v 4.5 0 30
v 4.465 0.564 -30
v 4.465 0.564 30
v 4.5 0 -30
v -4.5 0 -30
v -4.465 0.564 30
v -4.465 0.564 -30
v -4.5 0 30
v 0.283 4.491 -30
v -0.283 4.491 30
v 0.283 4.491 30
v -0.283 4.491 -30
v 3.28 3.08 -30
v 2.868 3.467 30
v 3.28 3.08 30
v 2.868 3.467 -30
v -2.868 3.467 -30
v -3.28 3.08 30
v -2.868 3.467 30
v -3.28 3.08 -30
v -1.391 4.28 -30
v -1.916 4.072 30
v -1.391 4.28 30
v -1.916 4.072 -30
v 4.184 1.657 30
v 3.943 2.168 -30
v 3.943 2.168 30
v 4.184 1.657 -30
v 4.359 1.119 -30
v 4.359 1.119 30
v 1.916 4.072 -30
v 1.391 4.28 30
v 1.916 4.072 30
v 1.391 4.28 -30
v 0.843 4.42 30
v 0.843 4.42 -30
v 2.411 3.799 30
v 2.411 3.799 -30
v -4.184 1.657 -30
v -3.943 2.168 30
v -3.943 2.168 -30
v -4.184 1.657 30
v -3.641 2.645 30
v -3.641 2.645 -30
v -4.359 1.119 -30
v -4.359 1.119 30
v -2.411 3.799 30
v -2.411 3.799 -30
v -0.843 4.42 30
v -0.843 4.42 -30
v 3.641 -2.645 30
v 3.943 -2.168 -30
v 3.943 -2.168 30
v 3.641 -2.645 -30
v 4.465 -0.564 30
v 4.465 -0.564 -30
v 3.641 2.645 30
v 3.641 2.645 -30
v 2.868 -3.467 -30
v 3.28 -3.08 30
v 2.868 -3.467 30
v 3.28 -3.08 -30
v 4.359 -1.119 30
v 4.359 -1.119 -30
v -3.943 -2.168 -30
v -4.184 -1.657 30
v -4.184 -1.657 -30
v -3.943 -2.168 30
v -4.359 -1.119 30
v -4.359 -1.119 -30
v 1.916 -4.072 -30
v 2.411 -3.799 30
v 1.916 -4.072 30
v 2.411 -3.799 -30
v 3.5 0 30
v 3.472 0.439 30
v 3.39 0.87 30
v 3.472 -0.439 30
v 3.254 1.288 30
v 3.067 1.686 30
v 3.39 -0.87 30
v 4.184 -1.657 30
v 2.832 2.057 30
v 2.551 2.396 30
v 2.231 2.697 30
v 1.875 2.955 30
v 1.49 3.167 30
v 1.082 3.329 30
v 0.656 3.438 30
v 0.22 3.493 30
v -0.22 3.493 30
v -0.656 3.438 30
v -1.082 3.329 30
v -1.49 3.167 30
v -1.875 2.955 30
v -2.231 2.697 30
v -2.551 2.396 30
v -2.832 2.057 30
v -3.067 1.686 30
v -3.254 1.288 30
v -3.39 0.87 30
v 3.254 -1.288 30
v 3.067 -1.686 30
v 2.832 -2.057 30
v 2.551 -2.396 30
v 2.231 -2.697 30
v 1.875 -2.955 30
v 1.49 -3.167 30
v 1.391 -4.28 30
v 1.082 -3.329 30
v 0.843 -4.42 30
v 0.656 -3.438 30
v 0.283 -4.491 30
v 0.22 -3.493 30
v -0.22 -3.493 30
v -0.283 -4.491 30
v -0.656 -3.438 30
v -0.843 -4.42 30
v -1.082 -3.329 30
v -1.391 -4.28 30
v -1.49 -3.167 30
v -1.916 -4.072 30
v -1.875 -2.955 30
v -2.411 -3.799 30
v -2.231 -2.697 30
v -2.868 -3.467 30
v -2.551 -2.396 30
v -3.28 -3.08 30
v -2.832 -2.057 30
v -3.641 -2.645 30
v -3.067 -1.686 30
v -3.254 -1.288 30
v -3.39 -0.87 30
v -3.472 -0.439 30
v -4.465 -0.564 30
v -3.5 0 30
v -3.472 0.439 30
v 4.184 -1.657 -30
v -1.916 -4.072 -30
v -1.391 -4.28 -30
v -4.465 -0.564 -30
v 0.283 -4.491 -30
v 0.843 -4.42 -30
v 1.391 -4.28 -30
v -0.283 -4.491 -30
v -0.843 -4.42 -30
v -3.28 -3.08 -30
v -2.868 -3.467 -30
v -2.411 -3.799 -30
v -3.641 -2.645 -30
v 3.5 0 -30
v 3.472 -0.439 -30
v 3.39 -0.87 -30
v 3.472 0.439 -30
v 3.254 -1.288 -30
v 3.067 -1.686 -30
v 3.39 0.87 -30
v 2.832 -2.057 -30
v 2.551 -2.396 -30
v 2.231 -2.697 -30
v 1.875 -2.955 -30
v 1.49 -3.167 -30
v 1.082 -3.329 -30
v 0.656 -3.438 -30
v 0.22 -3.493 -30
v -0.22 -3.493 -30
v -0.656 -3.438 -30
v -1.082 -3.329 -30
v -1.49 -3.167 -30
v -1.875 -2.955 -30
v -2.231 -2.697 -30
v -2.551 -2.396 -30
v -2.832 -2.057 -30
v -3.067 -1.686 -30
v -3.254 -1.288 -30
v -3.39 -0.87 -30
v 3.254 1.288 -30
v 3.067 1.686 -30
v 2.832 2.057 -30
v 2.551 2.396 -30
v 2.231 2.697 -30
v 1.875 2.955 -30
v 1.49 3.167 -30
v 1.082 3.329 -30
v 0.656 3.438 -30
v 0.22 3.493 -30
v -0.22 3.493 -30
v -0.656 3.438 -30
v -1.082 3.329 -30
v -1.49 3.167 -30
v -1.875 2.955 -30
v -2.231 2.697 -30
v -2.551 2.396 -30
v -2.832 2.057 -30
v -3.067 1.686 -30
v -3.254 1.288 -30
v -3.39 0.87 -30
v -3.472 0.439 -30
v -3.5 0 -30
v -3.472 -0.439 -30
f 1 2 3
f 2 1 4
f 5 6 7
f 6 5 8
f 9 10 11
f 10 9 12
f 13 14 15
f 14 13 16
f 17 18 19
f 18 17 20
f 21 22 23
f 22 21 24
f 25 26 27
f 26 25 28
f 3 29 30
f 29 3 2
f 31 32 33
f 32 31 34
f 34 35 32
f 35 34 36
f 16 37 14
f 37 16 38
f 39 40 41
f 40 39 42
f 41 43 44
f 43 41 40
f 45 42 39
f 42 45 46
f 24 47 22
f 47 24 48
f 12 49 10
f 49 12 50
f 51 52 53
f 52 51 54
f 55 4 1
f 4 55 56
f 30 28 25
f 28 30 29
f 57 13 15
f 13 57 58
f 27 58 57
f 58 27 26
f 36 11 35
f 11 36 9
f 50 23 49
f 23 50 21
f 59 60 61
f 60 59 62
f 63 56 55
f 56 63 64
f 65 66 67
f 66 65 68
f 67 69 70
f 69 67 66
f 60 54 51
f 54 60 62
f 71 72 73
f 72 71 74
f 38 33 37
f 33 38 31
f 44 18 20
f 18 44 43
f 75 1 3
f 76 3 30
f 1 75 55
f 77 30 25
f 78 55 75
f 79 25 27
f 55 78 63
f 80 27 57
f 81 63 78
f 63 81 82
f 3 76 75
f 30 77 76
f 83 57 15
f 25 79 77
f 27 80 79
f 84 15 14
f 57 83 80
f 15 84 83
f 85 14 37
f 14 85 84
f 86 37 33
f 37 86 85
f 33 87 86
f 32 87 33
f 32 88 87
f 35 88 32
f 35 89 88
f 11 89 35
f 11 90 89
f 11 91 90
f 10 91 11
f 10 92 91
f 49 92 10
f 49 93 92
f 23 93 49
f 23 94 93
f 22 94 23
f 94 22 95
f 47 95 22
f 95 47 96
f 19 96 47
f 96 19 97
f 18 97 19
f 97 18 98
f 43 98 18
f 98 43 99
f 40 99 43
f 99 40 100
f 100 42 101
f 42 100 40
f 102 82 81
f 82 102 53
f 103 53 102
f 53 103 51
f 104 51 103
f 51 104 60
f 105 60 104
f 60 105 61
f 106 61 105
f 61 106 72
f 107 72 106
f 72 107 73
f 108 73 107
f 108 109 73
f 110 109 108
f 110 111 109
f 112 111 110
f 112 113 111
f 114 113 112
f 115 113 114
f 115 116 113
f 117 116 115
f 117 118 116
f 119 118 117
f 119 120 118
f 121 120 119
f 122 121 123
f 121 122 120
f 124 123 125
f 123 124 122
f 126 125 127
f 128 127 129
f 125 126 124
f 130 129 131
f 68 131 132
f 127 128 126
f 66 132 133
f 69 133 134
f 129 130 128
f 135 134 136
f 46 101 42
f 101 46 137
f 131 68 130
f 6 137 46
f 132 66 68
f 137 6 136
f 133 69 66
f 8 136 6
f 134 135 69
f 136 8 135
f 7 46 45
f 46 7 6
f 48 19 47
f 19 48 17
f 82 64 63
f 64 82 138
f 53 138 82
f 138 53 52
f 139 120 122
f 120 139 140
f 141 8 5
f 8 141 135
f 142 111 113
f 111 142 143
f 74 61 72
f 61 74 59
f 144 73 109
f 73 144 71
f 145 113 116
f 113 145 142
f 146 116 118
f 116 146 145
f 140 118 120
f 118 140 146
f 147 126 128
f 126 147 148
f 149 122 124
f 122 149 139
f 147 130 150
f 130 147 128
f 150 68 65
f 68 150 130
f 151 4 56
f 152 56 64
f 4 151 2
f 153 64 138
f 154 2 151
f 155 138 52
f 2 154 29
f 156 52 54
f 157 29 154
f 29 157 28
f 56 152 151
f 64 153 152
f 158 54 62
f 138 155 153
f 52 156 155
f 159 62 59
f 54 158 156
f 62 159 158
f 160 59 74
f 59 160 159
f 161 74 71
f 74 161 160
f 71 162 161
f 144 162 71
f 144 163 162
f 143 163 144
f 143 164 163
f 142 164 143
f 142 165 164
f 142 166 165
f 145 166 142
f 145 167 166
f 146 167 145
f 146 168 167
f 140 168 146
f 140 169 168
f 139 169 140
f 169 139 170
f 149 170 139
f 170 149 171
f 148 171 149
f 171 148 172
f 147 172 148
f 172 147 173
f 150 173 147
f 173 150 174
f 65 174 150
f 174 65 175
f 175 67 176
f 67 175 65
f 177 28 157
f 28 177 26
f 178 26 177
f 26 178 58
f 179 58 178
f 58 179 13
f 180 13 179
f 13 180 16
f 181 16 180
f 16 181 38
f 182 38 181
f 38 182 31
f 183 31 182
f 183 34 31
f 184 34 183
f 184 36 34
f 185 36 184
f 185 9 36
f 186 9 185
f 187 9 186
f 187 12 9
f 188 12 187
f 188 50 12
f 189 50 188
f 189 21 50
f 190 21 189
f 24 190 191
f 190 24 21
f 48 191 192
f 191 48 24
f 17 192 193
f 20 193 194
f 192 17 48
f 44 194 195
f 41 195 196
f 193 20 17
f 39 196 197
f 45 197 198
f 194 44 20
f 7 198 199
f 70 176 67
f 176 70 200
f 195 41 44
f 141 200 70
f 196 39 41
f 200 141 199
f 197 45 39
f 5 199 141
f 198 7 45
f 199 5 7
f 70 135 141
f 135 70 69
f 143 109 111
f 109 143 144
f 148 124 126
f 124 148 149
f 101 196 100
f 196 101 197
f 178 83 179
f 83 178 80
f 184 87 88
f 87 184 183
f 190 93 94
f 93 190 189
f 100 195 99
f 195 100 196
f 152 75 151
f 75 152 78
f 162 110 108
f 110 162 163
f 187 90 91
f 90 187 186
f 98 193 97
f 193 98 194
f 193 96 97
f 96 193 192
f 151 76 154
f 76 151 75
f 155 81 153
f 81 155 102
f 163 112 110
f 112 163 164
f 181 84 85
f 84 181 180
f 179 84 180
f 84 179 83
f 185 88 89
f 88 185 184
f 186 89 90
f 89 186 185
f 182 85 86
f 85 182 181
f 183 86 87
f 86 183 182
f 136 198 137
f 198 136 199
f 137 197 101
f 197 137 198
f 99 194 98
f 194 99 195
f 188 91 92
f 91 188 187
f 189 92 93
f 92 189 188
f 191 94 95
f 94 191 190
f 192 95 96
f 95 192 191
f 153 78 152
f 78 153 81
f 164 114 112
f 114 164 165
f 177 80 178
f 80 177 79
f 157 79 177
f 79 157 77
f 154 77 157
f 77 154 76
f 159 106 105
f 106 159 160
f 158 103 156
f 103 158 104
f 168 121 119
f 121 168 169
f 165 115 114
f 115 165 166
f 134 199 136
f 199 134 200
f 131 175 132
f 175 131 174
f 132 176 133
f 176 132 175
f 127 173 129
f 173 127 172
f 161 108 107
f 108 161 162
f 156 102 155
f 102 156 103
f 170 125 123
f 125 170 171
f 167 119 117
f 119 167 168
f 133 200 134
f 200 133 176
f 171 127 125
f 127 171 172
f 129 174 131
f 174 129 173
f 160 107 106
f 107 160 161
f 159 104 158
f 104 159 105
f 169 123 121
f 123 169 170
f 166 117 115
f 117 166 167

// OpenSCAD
$fn = 50;


difference() {
	union() {
		translate(v = [0, 0, -30.0000000000]) {
			cylinder(h = 60, r = 4.5000000000);
		}
	}
	union() {
		translate(v = [0, 0, -100.0000000000]) {
			cylinder(h = 200, r = 3.5000000000);
		}
	}
}
